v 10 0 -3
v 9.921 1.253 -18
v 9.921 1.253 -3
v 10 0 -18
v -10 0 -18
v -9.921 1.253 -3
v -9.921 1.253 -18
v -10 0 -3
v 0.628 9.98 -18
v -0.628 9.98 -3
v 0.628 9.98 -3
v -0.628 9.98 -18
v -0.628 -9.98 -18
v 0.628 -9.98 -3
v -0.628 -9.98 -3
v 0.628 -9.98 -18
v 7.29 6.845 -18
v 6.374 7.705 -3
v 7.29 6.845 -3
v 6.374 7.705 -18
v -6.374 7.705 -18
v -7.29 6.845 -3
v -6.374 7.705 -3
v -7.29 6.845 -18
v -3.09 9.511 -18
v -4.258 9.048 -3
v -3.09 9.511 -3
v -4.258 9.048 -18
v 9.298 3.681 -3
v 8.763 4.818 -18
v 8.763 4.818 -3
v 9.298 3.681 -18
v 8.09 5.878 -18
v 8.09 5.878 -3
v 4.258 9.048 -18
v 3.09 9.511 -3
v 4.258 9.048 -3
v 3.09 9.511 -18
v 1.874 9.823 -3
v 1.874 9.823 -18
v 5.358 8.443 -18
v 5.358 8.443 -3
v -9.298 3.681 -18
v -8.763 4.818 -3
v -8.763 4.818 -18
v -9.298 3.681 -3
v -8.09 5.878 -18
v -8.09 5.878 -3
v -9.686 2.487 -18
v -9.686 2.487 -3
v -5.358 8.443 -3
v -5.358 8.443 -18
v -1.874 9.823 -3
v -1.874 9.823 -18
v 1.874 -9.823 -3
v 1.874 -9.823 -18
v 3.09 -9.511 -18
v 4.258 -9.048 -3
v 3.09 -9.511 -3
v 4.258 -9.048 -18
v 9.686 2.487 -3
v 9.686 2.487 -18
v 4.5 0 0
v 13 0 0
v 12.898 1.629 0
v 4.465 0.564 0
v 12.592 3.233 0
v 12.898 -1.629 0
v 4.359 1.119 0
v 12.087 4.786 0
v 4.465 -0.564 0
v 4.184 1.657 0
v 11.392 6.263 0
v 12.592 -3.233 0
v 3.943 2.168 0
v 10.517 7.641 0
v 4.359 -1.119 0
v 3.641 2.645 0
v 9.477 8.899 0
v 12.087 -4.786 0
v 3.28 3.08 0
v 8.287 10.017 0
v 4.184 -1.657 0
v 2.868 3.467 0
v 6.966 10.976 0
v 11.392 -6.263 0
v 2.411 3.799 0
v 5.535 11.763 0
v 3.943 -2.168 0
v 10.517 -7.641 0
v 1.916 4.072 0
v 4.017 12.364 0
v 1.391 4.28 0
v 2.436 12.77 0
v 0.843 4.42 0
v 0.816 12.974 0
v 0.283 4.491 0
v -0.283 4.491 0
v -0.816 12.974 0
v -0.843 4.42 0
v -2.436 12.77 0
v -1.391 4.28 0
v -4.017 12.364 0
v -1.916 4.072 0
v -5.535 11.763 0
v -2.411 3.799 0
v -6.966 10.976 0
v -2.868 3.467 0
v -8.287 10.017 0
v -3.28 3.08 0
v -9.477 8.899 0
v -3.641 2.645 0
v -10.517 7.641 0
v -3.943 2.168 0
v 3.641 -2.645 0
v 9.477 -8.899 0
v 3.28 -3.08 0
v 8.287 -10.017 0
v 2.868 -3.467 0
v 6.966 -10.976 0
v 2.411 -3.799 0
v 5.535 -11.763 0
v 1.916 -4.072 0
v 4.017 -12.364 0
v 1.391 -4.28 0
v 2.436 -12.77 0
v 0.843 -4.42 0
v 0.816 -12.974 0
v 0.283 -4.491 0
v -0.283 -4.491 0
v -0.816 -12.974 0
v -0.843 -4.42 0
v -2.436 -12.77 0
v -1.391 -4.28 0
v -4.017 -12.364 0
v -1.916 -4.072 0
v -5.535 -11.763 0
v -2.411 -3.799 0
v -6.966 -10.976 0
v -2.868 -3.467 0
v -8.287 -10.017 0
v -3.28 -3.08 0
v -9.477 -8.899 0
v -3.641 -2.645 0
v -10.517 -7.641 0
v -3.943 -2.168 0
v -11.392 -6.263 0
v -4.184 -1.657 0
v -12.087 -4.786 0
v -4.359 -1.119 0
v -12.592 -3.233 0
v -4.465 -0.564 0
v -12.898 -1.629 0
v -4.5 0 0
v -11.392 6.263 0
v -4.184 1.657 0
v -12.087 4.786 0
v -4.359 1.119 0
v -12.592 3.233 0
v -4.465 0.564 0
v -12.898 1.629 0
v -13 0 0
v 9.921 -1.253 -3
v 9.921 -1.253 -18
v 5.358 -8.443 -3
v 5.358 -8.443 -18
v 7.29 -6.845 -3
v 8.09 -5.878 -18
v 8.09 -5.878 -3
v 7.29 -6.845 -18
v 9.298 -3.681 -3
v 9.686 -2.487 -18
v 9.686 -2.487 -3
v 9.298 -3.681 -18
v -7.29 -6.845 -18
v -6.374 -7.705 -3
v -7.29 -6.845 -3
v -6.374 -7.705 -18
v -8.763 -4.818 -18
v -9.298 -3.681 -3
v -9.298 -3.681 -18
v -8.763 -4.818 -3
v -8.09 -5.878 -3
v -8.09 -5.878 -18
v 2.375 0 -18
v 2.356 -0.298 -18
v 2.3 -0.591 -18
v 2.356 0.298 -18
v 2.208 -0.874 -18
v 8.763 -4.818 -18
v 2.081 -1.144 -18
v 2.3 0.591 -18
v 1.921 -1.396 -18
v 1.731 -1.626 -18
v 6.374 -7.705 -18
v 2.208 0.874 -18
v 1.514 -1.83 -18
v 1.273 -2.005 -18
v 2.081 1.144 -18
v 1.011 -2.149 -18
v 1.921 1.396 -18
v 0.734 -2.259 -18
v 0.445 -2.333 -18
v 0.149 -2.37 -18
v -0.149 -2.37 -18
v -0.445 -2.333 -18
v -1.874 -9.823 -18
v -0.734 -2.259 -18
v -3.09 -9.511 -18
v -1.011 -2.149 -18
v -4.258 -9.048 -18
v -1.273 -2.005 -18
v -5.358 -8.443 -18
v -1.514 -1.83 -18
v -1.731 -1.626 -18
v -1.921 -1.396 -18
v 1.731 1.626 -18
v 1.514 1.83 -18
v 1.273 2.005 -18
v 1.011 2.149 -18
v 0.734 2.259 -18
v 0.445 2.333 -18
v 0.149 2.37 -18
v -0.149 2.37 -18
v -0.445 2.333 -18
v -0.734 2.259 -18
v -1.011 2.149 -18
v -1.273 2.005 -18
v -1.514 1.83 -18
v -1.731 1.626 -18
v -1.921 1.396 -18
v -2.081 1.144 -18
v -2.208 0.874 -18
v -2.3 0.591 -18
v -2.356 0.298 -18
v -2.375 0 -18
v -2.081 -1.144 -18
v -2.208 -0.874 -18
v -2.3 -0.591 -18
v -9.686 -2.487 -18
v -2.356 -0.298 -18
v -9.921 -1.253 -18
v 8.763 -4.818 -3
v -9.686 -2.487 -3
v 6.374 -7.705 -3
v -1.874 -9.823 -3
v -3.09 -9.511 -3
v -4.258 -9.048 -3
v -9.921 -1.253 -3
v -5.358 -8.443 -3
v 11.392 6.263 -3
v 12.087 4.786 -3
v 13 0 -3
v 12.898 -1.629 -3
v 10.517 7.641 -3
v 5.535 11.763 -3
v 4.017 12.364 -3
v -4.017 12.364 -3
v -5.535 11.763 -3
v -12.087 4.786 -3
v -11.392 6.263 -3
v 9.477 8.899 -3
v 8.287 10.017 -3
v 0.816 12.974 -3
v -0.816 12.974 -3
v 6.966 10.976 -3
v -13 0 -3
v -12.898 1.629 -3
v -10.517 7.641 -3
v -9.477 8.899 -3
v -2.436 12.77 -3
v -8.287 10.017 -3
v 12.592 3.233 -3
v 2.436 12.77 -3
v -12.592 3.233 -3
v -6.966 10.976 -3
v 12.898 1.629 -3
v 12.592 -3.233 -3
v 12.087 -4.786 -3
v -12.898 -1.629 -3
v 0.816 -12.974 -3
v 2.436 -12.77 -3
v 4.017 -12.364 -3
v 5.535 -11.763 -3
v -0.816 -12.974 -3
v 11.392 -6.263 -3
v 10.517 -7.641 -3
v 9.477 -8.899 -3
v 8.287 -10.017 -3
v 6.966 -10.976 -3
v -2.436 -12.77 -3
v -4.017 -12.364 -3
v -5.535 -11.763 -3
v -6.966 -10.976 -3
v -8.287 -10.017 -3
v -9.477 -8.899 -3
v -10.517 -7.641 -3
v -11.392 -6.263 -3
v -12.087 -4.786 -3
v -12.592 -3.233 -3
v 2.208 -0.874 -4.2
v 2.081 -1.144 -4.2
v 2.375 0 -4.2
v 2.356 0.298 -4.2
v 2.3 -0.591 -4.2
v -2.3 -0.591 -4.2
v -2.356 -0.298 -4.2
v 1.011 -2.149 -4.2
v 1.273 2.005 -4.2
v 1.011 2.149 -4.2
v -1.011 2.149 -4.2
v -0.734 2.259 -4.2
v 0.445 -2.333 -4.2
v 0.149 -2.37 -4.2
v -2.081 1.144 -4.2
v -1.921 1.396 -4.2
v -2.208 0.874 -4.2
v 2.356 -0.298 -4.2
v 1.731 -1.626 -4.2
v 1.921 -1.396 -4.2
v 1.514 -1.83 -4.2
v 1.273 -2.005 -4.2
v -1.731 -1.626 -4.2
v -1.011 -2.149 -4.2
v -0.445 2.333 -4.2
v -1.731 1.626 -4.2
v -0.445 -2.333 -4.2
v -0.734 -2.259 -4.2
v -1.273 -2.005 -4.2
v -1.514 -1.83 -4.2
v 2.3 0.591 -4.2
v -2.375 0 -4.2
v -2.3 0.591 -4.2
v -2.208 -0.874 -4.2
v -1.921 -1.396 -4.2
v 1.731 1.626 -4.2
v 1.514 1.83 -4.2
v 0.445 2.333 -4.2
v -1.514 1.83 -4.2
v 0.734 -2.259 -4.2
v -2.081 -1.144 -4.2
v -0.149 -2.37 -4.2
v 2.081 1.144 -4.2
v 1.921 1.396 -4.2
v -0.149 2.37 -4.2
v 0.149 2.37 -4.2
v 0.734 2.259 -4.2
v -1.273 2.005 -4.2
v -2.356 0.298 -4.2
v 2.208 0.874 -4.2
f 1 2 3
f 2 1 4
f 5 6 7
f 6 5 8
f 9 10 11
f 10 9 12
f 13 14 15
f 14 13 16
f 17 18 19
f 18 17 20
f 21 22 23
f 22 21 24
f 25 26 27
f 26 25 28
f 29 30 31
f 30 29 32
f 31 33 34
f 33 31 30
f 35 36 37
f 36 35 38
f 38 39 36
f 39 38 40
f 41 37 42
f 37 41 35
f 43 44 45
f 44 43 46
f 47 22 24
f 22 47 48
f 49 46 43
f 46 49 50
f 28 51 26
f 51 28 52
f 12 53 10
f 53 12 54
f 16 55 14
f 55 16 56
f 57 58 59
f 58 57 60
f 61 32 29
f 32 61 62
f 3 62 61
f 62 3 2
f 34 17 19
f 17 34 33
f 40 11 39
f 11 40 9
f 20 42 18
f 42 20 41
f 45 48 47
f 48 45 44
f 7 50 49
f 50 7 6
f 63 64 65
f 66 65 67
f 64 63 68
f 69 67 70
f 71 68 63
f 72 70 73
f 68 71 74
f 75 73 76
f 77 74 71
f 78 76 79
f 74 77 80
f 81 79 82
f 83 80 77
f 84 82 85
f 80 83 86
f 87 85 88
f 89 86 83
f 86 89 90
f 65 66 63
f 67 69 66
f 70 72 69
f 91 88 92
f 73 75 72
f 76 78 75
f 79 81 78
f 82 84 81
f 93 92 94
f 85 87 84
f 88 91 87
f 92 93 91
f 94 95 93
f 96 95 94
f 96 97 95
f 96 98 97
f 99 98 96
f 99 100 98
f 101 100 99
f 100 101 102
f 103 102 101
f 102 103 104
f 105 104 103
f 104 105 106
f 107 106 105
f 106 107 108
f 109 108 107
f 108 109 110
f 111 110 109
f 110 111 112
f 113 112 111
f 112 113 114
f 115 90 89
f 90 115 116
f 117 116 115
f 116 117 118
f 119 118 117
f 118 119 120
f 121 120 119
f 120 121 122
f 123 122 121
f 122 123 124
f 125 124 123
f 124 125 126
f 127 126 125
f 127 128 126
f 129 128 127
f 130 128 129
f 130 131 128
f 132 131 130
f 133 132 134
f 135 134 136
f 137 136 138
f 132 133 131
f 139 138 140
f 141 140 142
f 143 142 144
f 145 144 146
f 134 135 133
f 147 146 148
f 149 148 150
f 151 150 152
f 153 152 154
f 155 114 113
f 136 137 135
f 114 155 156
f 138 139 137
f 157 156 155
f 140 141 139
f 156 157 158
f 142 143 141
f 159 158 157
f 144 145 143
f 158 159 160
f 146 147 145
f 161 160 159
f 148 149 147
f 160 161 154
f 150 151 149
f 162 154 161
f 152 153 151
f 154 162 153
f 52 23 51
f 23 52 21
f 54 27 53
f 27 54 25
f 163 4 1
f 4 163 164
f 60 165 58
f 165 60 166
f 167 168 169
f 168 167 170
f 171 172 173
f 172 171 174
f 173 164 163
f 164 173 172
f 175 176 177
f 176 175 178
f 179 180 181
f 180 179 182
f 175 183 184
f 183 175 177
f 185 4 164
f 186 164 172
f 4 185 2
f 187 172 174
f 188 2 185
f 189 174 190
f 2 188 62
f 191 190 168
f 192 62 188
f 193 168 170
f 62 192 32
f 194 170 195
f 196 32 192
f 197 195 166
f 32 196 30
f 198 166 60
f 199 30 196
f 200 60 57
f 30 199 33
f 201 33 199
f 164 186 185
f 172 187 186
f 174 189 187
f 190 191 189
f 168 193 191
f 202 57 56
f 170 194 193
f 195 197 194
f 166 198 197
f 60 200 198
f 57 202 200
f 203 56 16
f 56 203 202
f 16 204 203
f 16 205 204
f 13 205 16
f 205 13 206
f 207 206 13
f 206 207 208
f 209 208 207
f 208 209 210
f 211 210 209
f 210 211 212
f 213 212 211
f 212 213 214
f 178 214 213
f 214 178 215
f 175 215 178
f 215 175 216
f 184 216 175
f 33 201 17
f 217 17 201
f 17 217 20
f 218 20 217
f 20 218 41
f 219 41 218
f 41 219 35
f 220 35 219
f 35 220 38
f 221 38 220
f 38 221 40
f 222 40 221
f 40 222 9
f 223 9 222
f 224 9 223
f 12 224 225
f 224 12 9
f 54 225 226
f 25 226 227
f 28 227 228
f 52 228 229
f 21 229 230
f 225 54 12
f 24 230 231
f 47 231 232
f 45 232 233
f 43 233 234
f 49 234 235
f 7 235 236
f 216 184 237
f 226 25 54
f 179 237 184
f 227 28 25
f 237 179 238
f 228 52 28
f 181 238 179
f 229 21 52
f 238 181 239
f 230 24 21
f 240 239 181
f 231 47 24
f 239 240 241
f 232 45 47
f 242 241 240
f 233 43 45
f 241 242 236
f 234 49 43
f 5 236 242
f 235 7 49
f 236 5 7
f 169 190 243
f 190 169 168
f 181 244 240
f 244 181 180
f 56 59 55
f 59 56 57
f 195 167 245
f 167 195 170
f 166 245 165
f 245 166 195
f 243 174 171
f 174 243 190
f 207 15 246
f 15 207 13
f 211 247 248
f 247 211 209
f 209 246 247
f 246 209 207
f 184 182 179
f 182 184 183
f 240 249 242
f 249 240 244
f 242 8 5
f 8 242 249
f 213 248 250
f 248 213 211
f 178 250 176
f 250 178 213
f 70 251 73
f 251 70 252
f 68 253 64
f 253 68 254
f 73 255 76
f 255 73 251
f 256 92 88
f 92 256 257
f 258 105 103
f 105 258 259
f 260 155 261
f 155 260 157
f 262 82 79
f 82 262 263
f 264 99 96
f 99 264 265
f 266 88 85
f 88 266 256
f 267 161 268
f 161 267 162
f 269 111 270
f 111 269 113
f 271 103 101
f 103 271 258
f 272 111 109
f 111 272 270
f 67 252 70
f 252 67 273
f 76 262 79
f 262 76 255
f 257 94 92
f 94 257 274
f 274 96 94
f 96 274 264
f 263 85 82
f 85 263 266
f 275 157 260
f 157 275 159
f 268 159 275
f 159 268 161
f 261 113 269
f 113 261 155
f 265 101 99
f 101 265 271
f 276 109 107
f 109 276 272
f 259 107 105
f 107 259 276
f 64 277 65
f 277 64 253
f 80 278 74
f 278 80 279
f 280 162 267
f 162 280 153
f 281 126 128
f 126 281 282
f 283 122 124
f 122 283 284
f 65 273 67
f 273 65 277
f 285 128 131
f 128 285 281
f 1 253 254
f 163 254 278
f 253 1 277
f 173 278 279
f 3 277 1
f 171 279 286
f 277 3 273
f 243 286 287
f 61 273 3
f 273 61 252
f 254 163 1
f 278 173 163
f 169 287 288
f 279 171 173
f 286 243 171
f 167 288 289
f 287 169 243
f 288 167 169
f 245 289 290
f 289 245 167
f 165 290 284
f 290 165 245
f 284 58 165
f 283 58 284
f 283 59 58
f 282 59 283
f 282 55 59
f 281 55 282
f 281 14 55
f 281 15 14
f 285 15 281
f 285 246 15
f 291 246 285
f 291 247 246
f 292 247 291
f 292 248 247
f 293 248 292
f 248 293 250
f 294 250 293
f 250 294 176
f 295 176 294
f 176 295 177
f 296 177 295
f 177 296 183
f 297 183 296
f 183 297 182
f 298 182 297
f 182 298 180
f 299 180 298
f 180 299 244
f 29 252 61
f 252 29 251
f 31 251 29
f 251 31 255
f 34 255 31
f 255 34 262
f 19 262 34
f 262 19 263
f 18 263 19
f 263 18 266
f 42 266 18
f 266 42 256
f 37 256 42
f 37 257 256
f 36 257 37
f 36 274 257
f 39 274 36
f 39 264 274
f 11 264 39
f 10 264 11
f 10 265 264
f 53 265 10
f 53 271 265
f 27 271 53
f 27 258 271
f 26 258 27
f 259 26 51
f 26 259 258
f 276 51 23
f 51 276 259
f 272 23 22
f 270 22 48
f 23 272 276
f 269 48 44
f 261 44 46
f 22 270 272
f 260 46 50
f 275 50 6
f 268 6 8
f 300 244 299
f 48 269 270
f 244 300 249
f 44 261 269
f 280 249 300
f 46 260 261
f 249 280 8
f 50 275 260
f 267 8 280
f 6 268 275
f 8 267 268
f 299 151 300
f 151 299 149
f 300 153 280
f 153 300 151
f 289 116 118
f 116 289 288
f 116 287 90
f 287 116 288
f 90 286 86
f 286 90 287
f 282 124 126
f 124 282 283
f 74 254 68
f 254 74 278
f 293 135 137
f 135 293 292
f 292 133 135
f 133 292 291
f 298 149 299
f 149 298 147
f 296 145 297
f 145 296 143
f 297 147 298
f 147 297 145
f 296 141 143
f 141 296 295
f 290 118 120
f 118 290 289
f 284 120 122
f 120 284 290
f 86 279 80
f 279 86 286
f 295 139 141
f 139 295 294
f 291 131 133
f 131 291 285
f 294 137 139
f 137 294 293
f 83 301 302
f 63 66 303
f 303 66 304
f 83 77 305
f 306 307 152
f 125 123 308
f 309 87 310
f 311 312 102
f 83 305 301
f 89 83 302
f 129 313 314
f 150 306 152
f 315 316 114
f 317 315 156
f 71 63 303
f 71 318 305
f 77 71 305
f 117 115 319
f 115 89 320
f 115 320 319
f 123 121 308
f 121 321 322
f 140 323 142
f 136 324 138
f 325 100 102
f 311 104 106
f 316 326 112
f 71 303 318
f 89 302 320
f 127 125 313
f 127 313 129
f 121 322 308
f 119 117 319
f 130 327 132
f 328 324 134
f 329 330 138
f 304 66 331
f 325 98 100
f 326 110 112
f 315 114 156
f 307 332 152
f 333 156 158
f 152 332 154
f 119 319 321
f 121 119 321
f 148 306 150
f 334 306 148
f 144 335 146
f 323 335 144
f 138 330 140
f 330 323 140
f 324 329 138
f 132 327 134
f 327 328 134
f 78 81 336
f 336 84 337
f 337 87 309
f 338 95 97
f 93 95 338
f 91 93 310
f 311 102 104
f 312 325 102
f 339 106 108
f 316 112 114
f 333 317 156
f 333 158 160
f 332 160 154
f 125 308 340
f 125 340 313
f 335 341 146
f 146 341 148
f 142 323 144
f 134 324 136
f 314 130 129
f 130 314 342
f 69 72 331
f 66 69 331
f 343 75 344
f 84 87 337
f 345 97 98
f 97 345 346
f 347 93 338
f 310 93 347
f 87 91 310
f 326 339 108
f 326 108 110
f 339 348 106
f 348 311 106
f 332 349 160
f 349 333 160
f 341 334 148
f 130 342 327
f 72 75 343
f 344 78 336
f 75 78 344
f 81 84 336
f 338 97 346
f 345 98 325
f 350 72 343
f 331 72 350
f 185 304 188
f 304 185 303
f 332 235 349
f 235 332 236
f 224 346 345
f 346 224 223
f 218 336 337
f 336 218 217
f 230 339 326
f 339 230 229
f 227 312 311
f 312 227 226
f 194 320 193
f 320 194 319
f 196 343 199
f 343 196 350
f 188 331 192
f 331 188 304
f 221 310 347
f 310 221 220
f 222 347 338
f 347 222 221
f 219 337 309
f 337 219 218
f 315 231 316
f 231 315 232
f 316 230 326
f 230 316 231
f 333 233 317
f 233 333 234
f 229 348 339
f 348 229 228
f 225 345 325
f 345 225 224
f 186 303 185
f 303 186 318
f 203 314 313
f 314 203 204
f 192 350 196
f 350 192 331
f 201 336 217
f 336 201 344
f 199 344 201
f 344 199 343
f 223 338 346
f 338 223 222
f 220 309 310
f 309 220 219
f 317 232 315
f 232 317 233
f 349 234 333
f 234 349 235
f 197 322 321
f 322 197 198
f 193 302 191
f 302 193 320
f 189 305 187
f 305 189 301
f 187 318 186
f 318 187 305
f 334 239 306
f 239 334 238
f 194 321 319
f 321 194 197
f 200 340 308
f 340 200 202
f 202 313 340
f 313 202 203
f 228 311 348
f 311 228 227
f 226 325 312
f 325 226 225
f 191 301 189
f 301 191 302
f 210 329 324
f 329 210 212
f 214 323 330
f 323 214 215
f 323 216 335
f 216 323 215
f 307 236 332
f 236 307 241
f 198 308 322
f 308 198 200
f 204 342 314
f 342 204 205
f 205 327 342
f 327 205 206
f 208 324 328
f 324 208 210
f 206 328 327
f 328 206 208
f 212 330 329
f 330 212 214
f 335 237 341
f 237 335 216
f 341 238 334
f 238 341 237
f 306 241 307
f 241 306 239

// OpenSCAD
$fn = 50;


difference() {
	union() {
		translate(v = [0, 0, -18.0000000000]) {
			cylinder(h = 18, r = 10.0000000000);
		}
		translate(v = [0, 0, -3.0000000000]) {
			cylinder(h = 3, r = 13.0000000000);
		}
	}
	union() {
		translate(v = [0, 0, 0]) {
			rotate(a = [0, 0, 0]) {
				difference() {
					union() {
						#translate(v = [0, 0, -18.0000000000]) {
							cylinder(h = 18, r = 2.2500000000);
						}
						#translate(v = [0, 0, -4.2000000000]) {
							cylinder(h = 4.2000000000, r = 10.0000000000, r1 = 2.3750000000, r2 = 4.5000000000);
						}
						#translate(v = [0, 0, -18.0000000000]) {
							cylinder(h = 18, r = 2.3750000000);
						}
						#translate(v = [0, 0, -18.0000000000]) {
							cylinder(h = 18, r = 2.2500000000);
						}
					}
					union();
				}
			}
		}
	}
}
